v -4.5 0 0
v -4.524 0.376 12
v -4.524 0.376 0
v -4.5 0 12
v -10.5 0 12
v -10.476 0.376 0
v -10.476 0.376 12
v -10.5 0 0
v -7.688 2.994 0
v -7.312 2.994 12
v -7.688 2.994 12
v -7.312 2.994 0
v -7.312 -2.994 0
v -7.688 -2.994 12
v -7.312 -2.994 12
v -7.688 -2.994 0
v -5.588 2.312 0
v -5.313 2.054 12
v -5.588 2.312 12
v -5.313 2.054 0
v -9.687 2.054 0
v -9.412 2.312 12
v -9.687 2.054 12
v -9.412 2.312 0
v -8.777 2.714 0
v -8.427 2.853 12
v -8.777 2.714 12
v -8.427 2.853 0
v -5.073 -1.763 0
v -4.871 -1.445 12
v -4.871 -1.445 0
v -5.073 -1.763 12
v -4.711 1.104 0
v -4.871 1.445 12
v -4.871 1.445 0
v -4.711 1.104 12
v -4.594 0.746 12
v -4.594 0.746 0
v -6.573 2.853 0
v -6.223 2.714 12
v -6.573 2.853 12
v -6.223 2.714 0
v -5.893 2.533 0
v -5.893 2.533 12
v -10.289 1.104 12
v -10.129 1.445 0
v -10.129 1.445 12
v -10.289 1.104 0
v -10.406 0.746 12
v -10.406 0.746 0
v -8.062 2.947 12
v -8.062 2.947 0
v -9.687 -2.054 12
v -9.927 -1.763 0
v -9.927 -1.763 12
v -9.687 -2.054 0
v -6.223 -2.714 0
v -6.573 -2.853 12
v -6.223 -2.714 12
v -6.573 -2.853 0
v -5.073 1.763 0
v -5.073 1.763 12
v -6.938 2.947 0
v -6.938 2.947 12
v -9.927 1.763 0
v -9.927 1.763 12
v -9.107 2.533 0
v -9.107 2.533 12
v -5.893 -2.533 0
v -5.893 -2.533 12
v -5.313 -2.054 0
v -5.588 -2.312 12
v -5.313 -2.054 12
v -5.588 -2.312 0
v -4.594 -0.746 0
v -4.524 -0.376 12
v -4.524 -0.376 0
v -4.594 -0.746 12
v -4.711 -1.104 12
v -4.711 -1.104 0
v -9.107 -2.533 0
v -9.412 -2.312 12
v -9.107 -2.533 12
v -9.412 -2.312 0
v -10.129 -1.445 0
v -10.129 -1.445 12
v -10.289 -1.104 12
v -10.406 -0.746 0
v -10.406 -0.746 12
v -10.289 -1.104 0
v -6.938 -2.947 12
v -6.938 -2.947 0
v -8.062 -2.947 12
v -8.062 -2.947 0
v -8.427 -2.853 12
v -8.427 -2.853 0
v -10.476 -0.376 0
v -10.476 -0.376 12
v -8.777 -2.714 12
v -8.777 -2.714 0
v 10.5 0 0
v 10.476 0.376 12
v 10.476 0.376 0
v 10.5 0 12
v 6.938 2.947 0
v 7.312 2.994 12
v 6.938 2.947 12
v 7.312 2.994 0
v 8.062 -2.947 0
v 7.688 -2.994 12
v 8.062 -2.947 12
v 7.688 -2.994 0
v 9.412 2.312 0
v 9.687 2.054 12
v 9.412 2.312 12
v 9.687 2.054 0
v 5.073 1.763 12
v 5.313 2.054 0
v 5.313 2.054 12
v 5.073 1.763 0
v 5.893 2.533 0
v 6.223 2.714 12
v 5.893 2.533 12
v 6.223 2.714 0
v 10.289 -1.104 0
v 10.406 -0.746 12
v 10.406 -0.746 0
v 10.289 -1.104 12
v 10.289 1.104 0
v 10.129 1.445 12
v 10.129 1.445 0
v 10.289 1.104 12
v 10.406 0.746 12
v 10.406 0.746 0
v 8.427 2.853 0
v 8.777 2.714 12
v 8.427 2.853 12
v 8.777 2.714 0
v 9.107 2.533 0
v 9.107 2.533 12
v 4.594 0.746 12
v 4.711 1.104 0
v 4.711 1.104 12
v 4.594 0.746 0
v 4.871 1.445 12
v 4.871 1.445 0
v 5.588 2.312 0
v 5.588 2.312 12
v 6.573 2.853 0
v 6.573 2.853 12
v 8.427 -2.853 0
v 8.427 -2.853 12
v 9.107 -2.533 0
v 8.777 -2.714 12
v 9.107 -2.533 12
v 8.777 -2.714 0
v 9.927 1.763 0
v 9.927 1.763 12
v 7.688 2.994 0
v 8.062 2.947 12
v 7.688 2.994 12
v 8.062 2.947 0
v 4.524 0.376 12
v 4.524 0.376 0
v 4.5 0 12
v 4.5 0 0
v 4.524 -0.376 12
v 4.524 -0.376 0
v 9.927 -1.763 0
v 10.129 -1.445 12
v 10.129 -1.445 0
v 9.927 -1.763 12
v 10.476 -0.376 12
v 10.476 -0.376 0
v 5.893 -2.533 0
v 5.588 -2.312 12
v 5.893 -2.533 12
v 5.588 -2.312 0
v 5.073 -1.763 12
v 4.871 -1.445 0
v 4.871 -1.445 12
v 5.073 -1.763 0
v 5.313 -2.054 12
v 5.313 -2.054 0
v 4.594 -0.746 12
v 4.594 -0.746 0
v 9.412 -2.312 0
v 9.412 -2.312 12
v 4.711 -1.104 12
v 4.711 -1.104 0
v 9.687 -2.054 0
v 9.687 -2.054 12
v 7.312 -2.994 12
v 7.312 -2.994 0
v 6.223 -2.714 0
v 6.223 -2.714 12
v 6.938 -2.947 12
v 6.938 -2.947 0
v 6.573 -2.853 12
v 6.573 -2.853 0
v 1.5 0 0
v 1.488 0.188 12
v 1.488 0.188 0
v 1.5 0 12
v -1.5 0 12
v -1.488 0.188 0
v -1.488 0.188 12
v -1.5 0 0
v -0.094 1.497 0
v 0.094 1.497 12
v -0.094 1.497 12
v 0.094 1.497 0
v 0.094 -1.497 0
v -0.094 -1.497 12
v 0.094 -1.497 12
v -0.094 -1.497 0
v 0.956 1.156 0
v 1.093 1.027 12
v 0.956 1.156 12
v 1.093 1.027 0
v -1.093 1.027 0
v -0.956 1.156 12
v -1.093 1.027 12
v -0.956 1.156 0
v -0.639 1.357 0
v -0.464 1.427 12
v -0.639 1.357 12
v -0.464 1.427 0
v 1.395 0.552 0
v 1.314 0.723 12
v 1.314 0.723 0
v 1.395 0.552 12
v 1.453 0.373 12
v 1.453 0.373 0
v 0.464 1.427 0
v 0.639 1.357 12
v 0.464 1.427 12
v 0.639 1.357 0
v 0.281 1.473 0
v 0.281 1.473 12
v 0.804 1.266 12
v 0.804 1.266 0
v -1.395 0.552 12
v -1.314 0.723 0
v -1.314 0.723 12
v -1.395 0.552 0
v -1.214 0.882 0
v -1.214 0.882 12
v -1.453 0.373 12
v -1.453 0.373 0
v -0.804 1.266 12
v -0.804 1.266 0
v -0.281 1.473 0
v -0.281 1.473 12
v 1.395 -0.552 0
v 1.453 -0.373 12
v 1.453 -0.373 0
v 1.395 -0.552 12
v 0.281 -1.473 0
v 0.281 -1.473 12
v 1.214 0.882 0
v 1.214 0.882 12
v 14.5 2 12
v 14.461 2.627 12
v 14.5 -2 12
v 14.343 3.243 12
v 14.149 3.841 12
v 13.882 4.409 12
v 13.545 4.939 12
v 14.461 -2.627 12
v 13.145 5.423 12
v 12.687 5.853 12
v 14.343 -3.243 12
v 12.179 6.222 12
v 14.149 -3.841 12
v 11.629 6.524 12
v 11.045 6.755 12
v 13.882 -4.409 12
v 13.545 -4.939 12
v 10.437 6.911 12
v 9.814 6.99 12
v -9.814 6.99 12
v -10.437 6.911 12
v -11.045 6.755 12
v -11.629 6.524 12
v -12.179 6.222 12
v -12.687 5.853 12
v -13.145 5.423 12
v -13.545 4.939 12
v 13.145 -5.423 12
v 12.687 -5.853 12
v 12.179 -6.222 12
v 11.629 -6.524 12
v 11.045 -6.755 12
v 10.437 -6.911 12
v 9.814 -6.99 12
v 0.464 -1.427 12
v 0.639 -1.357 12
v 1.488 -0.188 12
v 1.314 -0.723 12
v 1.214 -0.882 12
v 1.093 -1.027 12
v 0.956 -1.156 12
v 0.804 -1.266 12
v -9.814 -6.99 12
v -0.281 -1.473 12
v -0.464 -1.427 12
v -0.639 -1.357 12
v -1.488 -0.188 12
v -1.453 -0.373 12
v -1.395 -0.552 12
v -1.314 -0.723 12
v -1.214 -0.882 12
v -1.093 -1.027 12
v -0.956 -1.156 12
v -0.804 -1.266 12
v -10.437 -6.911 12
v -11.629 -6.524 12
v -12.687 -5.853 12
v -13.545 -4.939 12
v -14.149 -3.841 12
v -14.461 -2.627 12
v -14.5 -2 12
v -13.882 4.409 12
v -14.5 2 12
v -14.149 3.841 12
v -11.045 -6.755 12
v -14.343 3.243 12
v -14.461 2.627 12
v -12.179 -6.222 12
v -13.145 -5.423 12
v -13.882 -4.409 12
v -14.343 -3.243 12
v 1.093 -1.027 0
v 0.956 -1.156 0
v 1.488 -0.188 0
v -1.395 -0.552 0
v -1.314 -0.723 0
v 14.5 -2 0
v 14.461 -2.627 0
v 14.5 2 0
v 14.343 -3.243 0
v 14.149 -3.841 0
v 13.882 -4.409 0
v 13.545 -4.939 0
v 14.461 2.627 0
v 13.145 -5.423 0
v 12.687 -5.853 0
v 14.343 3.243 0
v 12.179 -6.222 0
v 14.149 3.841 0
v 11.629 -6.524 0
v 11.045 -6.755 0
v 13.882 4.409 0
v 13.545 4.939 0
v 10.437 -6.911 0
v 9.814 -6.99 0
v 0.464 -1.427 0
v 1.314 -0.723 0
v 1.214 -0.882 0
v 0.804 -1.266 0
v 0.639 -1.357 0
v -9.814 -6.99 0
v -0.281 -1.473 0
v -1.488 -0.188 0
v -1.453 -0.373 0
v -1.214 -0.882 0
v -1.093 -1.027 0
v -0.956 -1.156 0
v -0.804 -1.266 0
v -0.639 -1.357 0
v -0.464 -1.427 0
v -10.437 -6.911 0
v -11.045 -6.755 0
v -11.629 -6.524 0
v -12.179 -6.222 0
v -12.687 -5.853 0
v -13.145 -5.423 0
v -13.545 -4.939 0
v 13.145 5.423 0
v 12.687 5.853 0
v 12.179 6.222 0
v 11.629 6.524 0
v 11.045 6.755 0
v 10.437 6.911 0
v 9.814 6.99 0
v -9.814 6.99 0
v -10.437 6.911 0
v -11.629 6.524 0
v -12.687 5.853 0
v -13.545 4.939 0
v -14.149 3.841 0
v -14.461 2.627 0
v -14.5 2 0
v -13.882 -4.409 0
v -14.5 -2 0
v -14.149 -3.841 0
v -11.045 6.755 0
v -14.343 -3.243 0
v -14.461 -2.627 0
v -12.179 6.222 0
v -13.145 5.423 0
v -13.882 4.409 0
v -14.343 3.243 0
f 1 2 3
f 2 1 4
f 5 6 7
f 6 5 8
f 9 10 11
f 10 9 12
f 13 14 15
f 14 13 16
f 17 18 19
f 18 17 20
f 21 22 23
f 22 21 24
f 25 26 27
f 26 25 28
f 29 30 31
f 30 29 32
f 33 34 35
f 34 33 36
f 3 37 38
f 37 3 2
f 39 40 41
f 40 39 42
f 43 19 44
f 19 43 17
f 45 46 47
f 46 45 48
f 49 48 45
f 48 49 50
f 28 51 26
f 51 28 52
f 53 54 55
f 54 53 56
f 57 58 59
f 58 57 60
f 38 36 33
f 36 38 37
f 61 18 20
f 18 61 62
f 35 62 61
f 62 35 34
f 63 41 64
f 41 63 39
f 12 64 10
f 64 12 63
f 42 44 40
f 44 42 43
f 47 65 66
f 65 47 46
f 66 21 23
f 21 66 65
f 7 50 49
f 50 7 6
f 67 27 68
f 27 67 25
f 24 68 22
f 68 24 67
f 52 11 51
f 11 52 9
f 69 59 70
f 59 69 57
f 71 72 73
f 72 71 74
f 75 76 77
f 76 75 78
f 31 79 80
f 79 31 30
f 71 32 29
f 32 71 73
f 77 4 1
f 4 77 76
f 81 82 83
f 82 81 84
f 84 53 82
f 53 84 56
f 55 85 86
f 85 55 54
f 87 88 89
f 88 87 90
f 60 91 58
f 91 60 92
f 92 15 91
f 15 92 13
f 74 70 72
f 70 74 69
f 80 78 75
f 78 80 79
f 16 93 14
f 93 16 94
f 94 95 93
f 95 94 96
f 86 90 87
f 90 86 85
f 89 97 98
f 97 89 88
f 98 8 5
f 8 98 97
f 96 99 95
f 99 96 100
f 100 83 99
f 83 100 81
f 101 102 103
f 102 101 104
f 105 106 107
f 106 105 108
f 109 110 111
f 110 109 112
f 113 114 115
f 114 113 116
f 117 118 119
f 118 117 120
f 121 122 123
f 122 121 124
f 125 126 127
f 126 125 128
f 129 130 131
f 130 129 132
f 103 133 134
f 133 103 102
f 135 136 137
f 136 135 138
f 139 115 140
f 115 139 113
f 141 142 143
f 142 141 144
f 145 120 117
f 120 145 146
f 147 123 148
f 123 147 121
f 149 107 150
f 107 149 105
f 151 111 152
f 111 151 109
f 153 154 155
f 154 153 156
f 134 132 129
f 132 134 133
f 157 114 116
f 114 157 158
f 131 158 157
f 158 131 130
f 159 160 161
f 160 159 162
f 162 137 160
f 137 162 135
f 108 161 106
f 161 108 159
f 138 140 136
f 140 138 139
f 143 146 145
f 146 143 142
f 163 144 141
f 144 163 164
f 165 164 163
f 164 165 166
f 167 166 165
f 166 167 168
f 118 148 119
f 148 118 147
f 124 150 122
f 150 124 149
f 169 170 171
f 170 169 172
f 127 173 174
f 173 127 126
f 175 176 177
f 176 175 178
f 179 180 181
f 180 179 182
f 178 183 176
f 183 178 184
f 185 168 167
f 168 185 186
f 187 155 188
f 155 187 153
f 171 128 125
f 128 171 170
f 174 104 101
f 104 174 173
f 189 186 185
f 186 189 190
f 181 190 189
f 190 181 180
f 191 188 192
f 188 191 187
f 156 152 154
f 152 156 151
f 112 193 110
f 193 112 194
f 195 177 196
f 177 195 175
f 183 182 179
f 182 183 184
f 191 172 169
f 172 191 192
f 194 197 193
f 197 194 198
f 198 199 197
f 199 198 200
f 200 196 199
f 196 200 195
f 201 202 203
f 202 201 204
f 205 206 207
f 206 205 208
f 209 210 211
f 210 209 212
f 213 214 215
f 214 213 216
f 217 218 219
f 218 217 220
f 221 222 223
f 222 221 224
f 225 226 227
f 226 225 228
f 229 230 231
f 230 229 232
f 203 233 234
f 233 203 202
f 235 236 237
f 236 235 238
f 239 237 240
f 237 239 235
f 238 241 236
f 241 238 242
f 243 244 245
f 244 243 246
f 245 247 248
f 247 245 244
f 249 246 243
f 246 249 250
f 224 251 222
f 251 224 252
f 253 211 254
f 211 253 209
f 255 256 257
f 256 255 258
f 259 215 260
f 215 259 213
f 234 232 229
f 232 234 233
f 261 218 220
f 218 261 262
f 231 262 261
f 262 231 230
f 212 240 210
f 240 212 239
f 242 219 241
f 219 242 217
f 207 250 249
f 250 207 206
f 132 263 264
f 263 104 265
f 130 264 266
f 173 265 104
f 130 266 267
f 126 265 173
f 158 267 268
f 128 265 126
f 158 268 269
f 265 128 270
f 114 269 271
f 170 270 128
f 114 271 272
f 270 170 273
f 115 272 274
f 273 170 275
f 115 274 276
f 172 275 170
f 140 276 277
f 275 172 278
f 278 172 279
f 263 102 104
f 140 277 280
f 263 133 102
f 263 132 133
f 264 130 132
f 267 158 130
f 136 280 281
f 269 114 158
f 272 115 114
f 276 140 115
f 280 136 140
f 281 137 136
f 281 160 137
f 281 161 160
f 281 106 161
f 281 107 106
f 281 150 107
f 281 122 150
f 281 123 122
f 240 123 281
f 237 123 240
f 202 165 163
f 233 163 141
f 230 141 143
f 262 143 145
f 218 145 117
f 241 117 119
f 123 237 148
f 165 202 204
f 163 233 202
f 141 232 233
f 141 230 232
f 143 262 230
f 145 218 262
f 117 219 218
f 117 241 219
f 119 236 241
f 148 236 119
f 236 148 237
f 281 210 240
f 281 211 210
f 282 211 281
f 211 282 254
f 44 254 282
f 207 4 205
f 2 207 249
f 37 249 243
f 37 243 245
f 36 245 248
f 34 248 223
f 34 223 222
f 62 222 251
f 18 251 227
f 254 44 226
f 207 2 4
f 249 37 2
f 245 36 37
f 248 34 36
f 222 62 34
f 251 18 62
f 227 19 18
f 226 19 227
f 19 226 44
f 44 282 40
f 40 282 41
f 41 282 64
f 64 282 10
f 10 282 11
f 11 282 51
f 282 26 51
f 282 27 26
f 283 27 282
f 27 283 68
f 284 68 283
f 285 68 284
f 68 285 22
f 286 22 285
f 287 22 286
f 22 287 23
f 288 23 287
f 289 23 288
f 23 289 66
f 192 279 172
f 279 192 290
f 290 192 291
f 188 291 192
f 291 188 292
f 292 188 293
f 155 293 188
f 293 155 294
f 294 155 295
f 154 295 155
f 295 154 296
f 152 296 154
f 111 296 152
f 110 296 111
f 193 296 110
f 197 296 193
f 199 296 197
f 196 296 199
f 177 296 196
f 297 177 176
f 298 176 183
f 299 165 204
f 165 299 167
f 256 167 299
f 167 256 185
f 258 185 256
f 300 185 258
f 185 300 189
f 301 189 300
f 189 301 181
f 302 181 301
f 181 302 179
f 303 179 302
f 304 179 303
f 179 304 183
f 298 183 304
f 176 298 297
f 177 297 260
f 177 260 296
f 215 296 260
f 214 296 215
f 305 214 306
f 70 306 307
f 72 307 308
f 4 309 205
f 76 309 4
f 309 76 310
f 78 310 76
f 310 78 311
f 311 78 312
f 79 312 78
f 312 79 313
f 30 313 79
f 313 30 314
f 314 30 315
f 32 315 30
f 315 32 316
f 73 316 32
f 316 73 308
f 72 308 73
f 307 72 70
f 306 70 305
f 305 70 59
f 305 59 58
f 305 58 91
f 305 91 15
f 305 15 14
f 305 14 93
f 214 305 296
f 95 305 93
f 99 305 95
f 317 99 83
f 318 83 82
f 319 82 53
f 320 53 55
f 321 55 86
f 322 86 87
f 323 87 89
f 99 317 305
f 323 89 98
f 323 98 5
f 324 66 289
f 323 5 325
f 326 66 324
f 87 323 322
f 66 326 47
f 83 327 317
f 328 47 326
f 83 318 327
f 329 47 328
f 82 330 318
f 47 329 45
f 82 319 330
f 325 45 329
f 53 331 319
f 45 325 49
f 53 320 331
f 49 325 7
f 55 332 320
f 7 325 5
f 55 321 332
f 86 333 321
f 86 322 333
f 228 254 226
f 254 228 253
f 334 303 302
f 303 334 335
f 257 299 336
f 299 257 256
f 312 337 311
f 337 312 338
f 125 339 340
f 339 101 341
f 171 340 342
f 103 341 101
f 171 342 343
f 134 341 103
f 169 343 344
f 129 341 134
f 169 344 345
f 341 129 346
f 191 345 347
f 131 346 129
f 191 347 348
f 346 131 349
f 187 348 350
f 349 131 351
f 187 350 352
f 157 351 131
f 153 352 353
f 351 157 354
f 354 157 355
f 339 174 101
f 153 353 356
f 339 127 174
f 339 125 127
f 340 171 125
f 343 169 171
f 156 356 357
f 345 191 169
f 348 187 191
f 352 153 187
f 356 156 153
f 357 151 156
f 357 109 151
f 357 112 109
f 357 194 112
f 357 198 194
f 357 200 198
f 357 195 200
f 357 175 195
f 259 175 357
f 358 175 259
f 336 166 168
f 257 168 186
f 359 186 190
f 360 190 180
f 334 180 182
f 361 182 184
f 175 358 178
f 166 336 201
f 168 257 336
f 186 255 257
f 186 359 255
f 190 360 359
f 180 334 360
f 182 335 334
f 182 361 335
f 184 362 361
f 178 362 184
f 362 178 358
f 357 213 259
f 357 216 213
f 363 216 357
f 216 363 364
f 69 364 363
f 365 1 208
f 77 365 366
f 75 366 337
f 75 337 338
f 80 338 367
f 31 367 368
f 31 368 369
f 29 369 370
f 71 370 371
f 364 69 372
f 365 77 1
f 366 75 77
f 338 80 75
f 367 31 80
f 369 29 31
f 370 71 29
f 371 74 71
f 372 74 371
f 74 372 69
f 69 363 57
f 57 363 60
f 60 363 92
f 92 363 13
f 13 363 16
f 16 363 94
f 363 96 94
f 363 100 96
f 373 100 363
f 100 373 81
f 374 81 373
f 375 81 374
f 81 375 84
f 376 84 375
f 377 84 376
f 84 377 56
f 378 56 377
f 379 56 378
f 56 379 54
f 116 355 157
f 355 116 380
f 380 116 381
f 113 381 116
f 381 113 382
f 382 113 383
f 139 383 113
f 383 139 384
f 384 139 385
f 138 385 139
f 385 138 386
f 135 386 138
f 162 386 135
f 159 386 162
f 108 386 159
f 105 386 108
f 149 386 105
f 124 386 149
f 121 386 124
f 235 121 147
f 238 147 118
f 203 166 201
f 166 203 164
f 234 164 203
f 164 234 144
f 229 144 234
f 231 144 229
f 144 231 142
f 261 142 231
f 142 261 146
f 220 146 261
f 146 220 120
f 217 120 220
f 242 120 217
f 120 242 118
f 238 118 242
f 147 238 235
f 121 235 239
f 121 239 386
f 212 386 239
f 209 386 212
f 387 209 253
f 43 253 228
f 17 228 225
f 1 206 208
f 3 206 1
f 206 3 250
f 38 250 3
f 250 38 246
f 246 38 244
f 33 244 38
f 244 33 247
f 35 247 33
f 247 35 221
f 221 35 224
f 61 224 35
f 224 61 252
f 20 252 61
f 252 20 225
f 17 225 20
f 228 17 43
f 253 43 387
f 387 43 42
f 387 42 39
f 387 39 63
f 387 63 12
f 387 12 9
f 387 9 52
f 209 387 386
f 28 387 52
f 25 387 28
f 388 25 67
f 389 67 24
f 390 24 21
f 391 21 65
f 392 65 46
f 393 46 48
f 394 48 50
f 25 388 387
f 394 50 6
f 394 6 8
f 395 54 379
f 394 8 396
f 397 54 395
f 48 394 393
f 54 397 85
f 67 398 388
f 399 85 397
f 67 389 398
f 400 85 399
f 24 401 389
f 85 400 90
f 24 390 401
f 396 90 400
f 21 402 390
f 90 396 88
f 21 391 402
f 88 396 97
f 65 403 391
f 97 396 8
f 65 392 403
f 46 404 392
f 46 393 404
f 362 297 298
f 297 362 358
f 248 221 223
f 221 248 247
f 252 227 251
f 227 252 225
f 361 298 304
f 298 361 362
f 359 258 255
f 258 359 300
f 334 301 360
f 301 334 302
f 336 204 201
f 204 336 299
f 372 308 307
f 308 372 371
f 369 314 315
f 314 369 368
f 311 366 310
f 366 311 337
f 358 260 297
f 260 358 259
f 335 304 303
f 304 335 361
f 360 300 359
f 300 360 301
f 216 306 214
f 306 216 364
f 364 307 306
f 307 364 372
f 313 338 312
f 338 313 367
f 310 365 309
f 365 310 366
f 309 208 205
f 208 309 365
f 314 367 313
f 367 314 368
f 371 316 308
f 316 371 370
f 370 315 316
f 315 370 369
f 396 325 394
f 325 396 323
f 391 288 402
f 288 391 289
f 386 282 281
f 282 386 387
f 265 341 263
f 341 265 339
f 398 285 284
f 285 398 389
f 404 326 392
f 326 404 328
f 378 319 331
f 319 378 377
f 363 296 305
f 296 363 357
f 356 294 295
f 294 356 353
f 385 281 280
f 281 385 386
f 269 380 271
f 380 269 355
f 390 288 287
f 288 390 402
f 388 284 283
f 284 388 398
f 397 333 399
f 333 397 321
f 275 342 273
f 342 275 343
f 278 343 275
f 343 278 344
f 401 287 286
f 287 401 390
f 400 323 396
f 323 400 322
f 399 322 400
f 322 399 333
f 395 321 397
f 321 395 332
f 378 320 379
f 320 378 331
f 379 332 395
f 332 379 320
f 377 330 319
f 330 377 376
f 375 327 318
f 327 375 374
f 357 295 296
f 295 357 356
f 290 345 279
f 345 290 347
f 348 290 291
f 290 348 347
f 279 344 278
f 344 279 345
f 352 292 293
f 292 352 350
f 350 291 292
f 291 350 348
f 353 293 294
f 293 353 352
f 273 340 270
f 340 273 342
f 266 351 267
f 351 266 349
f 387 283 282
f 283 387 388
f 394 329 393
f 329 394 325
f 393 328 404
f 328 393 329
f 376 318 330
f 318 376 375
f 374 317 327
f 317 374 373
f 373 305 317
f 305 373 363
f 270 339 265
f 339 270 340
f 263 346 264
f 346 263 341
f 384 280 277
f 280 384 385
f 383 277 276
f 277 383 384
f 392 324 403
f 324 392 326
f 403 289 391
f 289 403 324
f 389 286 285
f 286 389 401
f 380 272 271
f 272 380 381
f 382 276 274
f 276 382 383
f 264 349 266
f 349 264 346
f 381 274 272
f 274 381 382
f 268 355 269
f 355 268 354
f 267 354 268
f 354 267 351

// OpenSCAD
$fn = 50;


difference() {
	union() {
		hull() {
			translate(v = [-9.5000000000, 2.0000000000, 0]) {
				cylinder(h = 12, r = 5);
			}
			translate(v = [9.5000000000, 2.0000000000, 0]) {
				cylinder(h = 12, r = 5);
			}
			translate(v = [-9.5000000000, -2.0000000000, 0]) {
				cylinder(h = 12, r = 5);
			}
			translate(v = [9.5000000000, -2.0000000000, 0]) {
				cylinder(h = 12, r = 5);
			}
		}
	}
	union() {
		translate(v = [-7.5000000000, 0.0000000000, -100.0000000000]) {
			cylinder(h = 200, r = 3.0000000000);
		}
		translate(v = [7.5000000000, 0.0000000000, -100.0000000000]) {
			cylinder(h = 200, r = 3.0000000000);
		}
		translate(v = [-7.5000000000, 0.0000000000, 0]) {
			cylinder(h = 12, r = 1.5000000000);
		}
		cylinder(h = 12, r = 1.5000000000);
		translate(v = [7.5000000000, 0.0000000000, 0]) {
			cylinder(h = 12, r = 1.5000000000);
		}
		translate(v = [-7.5000000000, 0.0000000000, 0]) {
			cylinder(h = 12, r = 1.5000000000);
		}
		cylinder(h = 12, r = 1.5000000000);
		translate(v = [7.5000000000, 0.0000000000, 0]) {
			cylinder(h = 12, r = 1.5000000000);
		}
		translate(v = [-7.5000000000, 0.0000000000, 0]) {
			cylinder(h = 12, r = 1.5000000000);
		}
		cylinder(h = 12, r = 1.5000000000);
		translate(v = [7.5000000000, 0.0000000000, 0]) {
			cylinder(h = 12, r = 1.5000000000);
		}
	}
}
